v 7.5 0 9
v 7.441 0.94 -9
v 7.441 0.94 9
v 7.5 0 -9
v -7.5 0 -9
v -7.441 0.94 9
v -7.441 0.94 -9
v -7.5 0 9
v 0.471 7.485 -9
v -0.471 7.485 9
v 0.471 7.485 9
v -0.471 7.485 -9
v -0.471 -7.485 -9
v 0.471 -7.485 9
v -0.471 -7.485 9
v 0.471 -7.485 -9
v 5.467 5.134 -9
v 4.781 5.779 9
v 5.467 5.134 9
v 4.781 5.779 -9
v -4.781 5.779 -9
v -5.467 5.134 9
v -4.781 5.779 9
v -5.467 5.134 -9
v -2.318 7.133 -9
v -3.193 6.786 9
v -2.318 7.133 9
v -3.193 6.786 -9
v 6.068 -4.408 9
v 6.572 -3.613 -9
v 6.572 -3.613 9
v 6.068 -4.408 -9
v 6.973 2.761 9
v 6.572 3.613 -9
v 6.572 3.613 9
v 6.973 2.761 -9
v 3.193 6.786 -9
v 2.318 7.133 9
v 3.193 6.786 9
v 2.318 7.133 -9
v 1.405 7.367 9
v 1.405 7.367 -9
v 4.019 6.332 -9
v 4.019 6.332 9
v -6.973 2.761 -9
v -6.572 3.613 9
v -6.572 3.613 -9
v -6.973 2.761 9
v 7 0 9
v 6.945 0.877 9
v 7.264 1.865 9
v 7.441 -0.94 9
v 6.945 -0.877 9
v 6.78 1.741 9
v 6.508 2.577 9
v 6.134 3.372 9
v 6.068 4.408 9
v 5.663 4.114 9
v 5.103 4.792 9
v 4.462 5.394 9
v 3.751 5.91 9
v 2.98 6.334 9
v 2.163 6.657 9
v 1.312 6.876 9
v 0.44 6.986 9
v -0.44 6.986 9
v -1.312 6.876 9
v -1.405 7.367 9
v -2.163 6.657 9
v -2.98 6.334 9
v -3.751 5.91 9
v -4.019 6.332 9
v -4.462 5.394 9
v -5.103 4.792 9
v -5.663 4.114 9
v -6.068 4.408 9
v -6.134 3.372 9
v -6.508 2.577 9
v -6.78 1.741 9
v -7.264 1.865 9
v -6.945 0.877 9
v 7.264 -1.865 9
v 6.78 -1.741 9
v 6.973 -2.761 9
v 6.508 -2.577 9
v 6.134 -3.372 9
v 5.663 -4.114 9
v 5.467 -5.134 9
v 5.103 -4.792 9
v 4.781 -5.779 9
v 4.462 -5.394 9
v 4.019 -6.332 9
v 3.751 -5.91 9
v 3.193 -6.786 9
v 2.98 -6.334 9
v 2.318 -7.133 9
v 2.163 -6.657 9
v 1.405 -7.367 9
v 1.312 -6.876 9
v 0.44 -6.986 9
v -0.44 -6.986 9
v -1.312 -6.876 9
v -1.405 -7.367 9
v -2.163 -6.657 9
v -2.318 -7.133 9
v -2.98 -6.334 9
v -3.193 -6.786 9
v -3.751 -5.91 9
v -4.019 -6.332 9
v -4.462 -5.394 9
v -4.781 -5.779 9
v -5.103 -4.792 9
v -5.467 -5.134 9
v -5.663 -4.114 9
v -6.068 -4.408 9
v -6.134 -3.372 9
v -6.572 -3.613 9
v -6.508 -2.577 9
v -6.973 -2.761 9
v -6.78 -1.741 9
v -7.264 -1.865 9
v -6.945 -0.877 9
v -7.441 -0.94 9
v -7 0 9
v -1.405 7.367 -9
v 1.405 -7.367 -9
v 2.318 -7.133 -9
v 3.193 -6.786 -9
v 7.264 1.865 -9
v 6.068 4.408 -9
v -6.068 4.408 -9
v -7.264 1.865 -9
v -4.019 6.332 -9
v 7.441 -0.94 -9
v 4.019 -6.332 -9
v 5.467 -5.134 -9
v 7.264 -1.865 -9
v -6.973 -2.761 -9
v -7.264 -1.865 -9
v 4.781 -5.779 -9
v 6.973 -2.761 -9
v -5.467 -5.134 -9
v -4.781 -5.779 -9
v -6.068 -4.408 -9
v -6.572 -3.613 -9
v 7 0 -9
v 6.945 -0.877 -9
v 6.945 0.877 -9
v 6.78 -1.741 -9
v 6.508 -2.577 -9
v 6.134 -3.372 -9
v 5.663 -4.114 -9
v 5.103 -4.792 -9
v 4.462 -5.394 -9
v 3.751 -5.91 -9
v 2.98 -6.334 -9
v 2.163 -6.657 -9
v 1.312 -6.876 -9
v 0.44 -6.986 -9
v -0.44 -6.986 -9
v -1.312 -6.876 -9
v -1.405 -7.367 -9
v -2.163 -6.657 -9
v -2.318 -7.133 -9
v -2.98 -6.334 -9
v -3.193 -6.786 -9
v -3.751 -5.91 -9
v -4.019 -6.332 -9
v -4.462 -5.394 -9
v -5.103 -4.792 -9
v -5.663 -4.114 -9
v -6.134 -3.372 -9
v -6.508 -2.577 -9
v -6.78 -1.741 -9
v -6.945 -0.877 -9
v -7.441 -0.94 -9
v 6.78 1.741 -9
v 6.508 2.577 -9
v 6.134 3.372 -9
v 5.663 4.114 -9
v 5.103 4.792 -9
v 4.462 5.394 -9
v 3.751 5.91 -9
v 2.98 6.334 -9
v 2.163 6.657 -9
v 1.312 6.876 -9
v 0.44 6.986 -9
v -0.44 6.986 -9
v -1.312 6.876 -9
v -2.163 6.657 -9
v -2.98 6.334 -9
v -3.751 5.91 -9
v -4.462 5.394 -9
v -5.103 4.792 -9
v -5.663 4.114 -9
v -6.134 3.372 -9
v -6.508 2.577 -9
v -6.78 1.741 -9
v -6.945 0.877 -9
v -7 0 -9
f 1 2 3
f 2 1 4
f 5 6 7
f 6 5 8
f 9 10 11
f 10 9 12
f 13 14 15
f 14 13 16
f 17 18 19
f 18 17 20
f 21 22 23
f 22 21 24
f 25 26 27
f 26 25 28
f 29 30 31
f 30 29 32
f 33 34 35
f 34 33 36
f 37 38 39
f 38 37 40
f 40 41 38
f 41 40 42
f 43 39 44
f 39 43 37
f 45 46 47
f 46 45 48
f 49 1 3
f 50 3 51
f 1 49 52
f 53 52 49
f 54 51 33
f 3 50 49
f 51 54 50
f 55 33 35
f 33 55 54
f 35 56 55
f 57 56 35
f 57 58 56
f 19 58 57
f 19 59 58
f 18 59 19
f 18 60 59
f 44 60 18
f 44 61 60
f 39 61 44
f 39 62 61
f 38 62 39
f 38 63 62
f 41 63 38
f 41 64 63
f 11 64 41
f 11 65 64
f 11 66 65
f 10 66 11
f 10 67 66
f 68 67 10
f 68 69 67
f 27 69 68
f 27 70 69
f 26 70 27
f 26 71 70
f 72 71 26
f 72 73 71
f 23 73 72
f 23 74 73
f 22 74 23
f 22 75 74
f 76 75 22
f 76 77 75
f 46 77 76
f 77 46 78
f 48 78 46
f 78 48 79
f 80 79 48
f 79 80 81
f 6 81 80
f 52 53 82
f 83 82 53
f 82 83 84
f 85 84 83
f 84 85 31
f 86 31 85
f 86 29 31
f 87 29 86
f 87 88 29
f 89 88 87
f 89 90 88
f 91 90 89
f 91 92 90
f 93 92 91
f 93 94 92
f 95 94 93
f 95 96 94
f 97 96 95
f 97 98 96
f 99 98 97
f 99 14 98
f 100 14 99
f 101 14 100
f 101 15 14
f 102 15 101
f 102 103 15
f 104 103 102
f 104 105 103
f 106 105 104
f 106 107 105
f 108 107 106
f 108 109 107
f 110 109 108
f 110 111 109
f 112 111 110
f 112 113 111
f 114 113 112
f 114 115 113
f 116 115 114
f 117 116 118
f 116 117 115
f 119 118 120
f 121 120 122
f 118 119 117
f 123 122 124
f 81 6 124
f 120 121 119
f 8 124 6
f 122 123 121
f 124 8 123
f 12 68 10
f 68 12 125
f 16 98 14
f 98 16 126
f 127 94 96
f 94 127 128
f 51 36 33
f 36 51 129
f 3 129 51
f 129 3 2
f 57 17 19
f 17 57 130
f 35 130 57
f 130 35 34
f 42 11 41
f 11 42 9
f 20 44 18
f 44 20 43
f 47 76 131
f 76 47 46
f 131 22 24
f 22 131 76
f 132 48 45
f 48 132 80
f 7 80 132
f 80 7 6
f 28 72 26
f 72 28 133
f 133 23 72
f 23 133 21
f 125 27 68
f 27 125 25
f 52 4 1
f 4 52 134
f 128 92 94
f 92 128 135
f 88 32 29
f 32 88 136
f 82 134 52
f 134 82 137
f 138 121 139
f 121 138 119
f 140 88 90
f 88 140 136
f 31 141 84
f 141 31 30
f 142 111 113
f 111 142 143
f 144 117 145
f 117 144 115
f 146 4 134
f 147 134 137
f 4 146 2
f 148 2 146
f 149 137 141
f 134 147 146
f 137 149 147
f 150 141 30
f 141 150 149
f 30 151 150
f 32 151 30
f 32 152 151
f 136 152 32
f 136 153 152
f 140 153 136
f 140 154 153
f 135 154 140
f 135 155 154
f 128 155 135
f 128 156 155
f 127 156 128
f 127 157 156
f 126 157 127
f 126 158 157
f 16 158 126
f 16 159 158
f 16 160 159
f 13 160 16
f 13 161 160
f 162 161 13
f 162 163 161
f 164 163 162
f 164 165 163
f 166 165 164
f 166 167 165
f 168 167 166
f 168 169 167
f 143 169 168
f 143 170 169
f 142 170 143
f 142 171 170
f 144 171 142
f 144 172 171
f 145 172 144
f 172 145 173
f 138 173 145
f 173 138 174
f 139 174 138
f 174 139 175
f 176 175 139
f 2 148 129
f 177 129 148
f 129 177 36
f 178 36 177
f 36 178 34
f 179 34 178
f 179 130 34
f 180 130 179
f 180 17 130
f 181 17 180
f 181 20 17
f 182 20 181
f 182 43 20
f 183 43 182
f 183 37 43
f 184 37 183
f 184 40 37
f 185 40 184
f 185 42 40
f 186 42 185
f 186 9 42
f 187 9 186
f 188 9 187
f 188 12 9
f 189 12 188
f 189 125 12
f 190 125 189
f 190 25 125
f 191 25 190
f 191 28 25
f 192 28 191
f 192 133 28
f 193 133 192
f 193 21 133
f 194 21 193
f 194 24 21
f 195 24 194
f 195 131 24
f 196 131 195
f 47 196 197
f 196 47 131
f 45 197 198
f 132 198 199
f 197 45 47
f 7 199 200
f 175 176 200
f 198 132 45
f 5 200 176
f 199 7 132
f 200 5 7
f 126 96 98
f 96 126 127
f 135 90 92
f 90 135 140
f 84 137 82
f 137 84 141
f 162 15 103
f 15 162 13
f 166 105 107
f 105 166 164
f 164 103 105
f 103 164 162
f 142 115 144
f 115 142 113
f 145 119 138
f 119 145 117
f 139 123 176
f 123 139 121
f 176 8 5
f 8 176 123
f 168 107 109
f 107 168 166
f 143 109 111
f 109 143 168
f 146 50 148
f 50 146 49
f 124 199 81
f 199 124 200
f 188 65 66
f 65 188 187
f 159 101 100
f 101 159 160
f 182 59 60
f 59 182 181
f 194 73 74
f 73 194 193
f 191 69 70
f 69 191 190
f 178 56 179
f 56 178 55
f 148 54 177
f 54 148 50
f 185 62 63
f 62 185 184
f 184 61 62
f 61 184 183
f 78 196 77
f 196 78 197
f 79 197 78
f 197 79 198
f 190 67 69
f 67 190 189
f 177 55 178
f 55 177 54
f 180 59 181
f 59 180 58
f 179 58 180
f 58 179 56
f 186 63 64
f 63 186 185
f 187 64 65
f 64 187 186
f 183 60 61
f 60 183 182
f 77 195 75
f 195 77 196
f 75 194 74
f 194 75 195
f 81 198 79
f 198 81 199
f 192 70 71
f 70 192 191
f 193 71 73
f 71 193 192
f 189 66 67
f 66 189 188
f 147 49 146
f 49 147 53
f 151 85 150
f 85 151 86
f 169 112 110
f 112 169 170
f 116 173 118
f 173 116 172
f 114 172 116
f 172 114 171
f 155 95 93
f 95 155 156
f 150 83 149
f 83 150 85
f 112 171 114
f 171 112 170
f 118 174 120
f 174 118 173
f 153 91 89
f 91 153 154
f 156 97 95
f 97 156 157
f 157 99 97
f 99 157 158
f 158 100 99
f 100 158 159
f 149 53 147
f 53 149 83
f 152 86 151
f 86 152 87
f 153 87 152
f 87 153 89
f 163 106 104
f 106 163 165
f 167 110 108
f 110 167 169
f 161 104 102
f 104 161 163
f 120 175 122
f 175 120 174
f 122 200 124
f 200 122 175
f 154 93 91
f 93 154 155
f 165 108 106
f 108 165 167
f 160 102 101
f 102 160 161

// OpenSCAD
$fn = 50;


difference() {
	union() {
		translate(v = [0, 0, -9.0000000000]) {
			cylinder(h = 18, r = 7.5000000000);
		}
	}
	union() {
		translate(v = [0, 0, -100.0000000000]) {
			cylinder(h = 200, r = 7);
		}
	}
}
